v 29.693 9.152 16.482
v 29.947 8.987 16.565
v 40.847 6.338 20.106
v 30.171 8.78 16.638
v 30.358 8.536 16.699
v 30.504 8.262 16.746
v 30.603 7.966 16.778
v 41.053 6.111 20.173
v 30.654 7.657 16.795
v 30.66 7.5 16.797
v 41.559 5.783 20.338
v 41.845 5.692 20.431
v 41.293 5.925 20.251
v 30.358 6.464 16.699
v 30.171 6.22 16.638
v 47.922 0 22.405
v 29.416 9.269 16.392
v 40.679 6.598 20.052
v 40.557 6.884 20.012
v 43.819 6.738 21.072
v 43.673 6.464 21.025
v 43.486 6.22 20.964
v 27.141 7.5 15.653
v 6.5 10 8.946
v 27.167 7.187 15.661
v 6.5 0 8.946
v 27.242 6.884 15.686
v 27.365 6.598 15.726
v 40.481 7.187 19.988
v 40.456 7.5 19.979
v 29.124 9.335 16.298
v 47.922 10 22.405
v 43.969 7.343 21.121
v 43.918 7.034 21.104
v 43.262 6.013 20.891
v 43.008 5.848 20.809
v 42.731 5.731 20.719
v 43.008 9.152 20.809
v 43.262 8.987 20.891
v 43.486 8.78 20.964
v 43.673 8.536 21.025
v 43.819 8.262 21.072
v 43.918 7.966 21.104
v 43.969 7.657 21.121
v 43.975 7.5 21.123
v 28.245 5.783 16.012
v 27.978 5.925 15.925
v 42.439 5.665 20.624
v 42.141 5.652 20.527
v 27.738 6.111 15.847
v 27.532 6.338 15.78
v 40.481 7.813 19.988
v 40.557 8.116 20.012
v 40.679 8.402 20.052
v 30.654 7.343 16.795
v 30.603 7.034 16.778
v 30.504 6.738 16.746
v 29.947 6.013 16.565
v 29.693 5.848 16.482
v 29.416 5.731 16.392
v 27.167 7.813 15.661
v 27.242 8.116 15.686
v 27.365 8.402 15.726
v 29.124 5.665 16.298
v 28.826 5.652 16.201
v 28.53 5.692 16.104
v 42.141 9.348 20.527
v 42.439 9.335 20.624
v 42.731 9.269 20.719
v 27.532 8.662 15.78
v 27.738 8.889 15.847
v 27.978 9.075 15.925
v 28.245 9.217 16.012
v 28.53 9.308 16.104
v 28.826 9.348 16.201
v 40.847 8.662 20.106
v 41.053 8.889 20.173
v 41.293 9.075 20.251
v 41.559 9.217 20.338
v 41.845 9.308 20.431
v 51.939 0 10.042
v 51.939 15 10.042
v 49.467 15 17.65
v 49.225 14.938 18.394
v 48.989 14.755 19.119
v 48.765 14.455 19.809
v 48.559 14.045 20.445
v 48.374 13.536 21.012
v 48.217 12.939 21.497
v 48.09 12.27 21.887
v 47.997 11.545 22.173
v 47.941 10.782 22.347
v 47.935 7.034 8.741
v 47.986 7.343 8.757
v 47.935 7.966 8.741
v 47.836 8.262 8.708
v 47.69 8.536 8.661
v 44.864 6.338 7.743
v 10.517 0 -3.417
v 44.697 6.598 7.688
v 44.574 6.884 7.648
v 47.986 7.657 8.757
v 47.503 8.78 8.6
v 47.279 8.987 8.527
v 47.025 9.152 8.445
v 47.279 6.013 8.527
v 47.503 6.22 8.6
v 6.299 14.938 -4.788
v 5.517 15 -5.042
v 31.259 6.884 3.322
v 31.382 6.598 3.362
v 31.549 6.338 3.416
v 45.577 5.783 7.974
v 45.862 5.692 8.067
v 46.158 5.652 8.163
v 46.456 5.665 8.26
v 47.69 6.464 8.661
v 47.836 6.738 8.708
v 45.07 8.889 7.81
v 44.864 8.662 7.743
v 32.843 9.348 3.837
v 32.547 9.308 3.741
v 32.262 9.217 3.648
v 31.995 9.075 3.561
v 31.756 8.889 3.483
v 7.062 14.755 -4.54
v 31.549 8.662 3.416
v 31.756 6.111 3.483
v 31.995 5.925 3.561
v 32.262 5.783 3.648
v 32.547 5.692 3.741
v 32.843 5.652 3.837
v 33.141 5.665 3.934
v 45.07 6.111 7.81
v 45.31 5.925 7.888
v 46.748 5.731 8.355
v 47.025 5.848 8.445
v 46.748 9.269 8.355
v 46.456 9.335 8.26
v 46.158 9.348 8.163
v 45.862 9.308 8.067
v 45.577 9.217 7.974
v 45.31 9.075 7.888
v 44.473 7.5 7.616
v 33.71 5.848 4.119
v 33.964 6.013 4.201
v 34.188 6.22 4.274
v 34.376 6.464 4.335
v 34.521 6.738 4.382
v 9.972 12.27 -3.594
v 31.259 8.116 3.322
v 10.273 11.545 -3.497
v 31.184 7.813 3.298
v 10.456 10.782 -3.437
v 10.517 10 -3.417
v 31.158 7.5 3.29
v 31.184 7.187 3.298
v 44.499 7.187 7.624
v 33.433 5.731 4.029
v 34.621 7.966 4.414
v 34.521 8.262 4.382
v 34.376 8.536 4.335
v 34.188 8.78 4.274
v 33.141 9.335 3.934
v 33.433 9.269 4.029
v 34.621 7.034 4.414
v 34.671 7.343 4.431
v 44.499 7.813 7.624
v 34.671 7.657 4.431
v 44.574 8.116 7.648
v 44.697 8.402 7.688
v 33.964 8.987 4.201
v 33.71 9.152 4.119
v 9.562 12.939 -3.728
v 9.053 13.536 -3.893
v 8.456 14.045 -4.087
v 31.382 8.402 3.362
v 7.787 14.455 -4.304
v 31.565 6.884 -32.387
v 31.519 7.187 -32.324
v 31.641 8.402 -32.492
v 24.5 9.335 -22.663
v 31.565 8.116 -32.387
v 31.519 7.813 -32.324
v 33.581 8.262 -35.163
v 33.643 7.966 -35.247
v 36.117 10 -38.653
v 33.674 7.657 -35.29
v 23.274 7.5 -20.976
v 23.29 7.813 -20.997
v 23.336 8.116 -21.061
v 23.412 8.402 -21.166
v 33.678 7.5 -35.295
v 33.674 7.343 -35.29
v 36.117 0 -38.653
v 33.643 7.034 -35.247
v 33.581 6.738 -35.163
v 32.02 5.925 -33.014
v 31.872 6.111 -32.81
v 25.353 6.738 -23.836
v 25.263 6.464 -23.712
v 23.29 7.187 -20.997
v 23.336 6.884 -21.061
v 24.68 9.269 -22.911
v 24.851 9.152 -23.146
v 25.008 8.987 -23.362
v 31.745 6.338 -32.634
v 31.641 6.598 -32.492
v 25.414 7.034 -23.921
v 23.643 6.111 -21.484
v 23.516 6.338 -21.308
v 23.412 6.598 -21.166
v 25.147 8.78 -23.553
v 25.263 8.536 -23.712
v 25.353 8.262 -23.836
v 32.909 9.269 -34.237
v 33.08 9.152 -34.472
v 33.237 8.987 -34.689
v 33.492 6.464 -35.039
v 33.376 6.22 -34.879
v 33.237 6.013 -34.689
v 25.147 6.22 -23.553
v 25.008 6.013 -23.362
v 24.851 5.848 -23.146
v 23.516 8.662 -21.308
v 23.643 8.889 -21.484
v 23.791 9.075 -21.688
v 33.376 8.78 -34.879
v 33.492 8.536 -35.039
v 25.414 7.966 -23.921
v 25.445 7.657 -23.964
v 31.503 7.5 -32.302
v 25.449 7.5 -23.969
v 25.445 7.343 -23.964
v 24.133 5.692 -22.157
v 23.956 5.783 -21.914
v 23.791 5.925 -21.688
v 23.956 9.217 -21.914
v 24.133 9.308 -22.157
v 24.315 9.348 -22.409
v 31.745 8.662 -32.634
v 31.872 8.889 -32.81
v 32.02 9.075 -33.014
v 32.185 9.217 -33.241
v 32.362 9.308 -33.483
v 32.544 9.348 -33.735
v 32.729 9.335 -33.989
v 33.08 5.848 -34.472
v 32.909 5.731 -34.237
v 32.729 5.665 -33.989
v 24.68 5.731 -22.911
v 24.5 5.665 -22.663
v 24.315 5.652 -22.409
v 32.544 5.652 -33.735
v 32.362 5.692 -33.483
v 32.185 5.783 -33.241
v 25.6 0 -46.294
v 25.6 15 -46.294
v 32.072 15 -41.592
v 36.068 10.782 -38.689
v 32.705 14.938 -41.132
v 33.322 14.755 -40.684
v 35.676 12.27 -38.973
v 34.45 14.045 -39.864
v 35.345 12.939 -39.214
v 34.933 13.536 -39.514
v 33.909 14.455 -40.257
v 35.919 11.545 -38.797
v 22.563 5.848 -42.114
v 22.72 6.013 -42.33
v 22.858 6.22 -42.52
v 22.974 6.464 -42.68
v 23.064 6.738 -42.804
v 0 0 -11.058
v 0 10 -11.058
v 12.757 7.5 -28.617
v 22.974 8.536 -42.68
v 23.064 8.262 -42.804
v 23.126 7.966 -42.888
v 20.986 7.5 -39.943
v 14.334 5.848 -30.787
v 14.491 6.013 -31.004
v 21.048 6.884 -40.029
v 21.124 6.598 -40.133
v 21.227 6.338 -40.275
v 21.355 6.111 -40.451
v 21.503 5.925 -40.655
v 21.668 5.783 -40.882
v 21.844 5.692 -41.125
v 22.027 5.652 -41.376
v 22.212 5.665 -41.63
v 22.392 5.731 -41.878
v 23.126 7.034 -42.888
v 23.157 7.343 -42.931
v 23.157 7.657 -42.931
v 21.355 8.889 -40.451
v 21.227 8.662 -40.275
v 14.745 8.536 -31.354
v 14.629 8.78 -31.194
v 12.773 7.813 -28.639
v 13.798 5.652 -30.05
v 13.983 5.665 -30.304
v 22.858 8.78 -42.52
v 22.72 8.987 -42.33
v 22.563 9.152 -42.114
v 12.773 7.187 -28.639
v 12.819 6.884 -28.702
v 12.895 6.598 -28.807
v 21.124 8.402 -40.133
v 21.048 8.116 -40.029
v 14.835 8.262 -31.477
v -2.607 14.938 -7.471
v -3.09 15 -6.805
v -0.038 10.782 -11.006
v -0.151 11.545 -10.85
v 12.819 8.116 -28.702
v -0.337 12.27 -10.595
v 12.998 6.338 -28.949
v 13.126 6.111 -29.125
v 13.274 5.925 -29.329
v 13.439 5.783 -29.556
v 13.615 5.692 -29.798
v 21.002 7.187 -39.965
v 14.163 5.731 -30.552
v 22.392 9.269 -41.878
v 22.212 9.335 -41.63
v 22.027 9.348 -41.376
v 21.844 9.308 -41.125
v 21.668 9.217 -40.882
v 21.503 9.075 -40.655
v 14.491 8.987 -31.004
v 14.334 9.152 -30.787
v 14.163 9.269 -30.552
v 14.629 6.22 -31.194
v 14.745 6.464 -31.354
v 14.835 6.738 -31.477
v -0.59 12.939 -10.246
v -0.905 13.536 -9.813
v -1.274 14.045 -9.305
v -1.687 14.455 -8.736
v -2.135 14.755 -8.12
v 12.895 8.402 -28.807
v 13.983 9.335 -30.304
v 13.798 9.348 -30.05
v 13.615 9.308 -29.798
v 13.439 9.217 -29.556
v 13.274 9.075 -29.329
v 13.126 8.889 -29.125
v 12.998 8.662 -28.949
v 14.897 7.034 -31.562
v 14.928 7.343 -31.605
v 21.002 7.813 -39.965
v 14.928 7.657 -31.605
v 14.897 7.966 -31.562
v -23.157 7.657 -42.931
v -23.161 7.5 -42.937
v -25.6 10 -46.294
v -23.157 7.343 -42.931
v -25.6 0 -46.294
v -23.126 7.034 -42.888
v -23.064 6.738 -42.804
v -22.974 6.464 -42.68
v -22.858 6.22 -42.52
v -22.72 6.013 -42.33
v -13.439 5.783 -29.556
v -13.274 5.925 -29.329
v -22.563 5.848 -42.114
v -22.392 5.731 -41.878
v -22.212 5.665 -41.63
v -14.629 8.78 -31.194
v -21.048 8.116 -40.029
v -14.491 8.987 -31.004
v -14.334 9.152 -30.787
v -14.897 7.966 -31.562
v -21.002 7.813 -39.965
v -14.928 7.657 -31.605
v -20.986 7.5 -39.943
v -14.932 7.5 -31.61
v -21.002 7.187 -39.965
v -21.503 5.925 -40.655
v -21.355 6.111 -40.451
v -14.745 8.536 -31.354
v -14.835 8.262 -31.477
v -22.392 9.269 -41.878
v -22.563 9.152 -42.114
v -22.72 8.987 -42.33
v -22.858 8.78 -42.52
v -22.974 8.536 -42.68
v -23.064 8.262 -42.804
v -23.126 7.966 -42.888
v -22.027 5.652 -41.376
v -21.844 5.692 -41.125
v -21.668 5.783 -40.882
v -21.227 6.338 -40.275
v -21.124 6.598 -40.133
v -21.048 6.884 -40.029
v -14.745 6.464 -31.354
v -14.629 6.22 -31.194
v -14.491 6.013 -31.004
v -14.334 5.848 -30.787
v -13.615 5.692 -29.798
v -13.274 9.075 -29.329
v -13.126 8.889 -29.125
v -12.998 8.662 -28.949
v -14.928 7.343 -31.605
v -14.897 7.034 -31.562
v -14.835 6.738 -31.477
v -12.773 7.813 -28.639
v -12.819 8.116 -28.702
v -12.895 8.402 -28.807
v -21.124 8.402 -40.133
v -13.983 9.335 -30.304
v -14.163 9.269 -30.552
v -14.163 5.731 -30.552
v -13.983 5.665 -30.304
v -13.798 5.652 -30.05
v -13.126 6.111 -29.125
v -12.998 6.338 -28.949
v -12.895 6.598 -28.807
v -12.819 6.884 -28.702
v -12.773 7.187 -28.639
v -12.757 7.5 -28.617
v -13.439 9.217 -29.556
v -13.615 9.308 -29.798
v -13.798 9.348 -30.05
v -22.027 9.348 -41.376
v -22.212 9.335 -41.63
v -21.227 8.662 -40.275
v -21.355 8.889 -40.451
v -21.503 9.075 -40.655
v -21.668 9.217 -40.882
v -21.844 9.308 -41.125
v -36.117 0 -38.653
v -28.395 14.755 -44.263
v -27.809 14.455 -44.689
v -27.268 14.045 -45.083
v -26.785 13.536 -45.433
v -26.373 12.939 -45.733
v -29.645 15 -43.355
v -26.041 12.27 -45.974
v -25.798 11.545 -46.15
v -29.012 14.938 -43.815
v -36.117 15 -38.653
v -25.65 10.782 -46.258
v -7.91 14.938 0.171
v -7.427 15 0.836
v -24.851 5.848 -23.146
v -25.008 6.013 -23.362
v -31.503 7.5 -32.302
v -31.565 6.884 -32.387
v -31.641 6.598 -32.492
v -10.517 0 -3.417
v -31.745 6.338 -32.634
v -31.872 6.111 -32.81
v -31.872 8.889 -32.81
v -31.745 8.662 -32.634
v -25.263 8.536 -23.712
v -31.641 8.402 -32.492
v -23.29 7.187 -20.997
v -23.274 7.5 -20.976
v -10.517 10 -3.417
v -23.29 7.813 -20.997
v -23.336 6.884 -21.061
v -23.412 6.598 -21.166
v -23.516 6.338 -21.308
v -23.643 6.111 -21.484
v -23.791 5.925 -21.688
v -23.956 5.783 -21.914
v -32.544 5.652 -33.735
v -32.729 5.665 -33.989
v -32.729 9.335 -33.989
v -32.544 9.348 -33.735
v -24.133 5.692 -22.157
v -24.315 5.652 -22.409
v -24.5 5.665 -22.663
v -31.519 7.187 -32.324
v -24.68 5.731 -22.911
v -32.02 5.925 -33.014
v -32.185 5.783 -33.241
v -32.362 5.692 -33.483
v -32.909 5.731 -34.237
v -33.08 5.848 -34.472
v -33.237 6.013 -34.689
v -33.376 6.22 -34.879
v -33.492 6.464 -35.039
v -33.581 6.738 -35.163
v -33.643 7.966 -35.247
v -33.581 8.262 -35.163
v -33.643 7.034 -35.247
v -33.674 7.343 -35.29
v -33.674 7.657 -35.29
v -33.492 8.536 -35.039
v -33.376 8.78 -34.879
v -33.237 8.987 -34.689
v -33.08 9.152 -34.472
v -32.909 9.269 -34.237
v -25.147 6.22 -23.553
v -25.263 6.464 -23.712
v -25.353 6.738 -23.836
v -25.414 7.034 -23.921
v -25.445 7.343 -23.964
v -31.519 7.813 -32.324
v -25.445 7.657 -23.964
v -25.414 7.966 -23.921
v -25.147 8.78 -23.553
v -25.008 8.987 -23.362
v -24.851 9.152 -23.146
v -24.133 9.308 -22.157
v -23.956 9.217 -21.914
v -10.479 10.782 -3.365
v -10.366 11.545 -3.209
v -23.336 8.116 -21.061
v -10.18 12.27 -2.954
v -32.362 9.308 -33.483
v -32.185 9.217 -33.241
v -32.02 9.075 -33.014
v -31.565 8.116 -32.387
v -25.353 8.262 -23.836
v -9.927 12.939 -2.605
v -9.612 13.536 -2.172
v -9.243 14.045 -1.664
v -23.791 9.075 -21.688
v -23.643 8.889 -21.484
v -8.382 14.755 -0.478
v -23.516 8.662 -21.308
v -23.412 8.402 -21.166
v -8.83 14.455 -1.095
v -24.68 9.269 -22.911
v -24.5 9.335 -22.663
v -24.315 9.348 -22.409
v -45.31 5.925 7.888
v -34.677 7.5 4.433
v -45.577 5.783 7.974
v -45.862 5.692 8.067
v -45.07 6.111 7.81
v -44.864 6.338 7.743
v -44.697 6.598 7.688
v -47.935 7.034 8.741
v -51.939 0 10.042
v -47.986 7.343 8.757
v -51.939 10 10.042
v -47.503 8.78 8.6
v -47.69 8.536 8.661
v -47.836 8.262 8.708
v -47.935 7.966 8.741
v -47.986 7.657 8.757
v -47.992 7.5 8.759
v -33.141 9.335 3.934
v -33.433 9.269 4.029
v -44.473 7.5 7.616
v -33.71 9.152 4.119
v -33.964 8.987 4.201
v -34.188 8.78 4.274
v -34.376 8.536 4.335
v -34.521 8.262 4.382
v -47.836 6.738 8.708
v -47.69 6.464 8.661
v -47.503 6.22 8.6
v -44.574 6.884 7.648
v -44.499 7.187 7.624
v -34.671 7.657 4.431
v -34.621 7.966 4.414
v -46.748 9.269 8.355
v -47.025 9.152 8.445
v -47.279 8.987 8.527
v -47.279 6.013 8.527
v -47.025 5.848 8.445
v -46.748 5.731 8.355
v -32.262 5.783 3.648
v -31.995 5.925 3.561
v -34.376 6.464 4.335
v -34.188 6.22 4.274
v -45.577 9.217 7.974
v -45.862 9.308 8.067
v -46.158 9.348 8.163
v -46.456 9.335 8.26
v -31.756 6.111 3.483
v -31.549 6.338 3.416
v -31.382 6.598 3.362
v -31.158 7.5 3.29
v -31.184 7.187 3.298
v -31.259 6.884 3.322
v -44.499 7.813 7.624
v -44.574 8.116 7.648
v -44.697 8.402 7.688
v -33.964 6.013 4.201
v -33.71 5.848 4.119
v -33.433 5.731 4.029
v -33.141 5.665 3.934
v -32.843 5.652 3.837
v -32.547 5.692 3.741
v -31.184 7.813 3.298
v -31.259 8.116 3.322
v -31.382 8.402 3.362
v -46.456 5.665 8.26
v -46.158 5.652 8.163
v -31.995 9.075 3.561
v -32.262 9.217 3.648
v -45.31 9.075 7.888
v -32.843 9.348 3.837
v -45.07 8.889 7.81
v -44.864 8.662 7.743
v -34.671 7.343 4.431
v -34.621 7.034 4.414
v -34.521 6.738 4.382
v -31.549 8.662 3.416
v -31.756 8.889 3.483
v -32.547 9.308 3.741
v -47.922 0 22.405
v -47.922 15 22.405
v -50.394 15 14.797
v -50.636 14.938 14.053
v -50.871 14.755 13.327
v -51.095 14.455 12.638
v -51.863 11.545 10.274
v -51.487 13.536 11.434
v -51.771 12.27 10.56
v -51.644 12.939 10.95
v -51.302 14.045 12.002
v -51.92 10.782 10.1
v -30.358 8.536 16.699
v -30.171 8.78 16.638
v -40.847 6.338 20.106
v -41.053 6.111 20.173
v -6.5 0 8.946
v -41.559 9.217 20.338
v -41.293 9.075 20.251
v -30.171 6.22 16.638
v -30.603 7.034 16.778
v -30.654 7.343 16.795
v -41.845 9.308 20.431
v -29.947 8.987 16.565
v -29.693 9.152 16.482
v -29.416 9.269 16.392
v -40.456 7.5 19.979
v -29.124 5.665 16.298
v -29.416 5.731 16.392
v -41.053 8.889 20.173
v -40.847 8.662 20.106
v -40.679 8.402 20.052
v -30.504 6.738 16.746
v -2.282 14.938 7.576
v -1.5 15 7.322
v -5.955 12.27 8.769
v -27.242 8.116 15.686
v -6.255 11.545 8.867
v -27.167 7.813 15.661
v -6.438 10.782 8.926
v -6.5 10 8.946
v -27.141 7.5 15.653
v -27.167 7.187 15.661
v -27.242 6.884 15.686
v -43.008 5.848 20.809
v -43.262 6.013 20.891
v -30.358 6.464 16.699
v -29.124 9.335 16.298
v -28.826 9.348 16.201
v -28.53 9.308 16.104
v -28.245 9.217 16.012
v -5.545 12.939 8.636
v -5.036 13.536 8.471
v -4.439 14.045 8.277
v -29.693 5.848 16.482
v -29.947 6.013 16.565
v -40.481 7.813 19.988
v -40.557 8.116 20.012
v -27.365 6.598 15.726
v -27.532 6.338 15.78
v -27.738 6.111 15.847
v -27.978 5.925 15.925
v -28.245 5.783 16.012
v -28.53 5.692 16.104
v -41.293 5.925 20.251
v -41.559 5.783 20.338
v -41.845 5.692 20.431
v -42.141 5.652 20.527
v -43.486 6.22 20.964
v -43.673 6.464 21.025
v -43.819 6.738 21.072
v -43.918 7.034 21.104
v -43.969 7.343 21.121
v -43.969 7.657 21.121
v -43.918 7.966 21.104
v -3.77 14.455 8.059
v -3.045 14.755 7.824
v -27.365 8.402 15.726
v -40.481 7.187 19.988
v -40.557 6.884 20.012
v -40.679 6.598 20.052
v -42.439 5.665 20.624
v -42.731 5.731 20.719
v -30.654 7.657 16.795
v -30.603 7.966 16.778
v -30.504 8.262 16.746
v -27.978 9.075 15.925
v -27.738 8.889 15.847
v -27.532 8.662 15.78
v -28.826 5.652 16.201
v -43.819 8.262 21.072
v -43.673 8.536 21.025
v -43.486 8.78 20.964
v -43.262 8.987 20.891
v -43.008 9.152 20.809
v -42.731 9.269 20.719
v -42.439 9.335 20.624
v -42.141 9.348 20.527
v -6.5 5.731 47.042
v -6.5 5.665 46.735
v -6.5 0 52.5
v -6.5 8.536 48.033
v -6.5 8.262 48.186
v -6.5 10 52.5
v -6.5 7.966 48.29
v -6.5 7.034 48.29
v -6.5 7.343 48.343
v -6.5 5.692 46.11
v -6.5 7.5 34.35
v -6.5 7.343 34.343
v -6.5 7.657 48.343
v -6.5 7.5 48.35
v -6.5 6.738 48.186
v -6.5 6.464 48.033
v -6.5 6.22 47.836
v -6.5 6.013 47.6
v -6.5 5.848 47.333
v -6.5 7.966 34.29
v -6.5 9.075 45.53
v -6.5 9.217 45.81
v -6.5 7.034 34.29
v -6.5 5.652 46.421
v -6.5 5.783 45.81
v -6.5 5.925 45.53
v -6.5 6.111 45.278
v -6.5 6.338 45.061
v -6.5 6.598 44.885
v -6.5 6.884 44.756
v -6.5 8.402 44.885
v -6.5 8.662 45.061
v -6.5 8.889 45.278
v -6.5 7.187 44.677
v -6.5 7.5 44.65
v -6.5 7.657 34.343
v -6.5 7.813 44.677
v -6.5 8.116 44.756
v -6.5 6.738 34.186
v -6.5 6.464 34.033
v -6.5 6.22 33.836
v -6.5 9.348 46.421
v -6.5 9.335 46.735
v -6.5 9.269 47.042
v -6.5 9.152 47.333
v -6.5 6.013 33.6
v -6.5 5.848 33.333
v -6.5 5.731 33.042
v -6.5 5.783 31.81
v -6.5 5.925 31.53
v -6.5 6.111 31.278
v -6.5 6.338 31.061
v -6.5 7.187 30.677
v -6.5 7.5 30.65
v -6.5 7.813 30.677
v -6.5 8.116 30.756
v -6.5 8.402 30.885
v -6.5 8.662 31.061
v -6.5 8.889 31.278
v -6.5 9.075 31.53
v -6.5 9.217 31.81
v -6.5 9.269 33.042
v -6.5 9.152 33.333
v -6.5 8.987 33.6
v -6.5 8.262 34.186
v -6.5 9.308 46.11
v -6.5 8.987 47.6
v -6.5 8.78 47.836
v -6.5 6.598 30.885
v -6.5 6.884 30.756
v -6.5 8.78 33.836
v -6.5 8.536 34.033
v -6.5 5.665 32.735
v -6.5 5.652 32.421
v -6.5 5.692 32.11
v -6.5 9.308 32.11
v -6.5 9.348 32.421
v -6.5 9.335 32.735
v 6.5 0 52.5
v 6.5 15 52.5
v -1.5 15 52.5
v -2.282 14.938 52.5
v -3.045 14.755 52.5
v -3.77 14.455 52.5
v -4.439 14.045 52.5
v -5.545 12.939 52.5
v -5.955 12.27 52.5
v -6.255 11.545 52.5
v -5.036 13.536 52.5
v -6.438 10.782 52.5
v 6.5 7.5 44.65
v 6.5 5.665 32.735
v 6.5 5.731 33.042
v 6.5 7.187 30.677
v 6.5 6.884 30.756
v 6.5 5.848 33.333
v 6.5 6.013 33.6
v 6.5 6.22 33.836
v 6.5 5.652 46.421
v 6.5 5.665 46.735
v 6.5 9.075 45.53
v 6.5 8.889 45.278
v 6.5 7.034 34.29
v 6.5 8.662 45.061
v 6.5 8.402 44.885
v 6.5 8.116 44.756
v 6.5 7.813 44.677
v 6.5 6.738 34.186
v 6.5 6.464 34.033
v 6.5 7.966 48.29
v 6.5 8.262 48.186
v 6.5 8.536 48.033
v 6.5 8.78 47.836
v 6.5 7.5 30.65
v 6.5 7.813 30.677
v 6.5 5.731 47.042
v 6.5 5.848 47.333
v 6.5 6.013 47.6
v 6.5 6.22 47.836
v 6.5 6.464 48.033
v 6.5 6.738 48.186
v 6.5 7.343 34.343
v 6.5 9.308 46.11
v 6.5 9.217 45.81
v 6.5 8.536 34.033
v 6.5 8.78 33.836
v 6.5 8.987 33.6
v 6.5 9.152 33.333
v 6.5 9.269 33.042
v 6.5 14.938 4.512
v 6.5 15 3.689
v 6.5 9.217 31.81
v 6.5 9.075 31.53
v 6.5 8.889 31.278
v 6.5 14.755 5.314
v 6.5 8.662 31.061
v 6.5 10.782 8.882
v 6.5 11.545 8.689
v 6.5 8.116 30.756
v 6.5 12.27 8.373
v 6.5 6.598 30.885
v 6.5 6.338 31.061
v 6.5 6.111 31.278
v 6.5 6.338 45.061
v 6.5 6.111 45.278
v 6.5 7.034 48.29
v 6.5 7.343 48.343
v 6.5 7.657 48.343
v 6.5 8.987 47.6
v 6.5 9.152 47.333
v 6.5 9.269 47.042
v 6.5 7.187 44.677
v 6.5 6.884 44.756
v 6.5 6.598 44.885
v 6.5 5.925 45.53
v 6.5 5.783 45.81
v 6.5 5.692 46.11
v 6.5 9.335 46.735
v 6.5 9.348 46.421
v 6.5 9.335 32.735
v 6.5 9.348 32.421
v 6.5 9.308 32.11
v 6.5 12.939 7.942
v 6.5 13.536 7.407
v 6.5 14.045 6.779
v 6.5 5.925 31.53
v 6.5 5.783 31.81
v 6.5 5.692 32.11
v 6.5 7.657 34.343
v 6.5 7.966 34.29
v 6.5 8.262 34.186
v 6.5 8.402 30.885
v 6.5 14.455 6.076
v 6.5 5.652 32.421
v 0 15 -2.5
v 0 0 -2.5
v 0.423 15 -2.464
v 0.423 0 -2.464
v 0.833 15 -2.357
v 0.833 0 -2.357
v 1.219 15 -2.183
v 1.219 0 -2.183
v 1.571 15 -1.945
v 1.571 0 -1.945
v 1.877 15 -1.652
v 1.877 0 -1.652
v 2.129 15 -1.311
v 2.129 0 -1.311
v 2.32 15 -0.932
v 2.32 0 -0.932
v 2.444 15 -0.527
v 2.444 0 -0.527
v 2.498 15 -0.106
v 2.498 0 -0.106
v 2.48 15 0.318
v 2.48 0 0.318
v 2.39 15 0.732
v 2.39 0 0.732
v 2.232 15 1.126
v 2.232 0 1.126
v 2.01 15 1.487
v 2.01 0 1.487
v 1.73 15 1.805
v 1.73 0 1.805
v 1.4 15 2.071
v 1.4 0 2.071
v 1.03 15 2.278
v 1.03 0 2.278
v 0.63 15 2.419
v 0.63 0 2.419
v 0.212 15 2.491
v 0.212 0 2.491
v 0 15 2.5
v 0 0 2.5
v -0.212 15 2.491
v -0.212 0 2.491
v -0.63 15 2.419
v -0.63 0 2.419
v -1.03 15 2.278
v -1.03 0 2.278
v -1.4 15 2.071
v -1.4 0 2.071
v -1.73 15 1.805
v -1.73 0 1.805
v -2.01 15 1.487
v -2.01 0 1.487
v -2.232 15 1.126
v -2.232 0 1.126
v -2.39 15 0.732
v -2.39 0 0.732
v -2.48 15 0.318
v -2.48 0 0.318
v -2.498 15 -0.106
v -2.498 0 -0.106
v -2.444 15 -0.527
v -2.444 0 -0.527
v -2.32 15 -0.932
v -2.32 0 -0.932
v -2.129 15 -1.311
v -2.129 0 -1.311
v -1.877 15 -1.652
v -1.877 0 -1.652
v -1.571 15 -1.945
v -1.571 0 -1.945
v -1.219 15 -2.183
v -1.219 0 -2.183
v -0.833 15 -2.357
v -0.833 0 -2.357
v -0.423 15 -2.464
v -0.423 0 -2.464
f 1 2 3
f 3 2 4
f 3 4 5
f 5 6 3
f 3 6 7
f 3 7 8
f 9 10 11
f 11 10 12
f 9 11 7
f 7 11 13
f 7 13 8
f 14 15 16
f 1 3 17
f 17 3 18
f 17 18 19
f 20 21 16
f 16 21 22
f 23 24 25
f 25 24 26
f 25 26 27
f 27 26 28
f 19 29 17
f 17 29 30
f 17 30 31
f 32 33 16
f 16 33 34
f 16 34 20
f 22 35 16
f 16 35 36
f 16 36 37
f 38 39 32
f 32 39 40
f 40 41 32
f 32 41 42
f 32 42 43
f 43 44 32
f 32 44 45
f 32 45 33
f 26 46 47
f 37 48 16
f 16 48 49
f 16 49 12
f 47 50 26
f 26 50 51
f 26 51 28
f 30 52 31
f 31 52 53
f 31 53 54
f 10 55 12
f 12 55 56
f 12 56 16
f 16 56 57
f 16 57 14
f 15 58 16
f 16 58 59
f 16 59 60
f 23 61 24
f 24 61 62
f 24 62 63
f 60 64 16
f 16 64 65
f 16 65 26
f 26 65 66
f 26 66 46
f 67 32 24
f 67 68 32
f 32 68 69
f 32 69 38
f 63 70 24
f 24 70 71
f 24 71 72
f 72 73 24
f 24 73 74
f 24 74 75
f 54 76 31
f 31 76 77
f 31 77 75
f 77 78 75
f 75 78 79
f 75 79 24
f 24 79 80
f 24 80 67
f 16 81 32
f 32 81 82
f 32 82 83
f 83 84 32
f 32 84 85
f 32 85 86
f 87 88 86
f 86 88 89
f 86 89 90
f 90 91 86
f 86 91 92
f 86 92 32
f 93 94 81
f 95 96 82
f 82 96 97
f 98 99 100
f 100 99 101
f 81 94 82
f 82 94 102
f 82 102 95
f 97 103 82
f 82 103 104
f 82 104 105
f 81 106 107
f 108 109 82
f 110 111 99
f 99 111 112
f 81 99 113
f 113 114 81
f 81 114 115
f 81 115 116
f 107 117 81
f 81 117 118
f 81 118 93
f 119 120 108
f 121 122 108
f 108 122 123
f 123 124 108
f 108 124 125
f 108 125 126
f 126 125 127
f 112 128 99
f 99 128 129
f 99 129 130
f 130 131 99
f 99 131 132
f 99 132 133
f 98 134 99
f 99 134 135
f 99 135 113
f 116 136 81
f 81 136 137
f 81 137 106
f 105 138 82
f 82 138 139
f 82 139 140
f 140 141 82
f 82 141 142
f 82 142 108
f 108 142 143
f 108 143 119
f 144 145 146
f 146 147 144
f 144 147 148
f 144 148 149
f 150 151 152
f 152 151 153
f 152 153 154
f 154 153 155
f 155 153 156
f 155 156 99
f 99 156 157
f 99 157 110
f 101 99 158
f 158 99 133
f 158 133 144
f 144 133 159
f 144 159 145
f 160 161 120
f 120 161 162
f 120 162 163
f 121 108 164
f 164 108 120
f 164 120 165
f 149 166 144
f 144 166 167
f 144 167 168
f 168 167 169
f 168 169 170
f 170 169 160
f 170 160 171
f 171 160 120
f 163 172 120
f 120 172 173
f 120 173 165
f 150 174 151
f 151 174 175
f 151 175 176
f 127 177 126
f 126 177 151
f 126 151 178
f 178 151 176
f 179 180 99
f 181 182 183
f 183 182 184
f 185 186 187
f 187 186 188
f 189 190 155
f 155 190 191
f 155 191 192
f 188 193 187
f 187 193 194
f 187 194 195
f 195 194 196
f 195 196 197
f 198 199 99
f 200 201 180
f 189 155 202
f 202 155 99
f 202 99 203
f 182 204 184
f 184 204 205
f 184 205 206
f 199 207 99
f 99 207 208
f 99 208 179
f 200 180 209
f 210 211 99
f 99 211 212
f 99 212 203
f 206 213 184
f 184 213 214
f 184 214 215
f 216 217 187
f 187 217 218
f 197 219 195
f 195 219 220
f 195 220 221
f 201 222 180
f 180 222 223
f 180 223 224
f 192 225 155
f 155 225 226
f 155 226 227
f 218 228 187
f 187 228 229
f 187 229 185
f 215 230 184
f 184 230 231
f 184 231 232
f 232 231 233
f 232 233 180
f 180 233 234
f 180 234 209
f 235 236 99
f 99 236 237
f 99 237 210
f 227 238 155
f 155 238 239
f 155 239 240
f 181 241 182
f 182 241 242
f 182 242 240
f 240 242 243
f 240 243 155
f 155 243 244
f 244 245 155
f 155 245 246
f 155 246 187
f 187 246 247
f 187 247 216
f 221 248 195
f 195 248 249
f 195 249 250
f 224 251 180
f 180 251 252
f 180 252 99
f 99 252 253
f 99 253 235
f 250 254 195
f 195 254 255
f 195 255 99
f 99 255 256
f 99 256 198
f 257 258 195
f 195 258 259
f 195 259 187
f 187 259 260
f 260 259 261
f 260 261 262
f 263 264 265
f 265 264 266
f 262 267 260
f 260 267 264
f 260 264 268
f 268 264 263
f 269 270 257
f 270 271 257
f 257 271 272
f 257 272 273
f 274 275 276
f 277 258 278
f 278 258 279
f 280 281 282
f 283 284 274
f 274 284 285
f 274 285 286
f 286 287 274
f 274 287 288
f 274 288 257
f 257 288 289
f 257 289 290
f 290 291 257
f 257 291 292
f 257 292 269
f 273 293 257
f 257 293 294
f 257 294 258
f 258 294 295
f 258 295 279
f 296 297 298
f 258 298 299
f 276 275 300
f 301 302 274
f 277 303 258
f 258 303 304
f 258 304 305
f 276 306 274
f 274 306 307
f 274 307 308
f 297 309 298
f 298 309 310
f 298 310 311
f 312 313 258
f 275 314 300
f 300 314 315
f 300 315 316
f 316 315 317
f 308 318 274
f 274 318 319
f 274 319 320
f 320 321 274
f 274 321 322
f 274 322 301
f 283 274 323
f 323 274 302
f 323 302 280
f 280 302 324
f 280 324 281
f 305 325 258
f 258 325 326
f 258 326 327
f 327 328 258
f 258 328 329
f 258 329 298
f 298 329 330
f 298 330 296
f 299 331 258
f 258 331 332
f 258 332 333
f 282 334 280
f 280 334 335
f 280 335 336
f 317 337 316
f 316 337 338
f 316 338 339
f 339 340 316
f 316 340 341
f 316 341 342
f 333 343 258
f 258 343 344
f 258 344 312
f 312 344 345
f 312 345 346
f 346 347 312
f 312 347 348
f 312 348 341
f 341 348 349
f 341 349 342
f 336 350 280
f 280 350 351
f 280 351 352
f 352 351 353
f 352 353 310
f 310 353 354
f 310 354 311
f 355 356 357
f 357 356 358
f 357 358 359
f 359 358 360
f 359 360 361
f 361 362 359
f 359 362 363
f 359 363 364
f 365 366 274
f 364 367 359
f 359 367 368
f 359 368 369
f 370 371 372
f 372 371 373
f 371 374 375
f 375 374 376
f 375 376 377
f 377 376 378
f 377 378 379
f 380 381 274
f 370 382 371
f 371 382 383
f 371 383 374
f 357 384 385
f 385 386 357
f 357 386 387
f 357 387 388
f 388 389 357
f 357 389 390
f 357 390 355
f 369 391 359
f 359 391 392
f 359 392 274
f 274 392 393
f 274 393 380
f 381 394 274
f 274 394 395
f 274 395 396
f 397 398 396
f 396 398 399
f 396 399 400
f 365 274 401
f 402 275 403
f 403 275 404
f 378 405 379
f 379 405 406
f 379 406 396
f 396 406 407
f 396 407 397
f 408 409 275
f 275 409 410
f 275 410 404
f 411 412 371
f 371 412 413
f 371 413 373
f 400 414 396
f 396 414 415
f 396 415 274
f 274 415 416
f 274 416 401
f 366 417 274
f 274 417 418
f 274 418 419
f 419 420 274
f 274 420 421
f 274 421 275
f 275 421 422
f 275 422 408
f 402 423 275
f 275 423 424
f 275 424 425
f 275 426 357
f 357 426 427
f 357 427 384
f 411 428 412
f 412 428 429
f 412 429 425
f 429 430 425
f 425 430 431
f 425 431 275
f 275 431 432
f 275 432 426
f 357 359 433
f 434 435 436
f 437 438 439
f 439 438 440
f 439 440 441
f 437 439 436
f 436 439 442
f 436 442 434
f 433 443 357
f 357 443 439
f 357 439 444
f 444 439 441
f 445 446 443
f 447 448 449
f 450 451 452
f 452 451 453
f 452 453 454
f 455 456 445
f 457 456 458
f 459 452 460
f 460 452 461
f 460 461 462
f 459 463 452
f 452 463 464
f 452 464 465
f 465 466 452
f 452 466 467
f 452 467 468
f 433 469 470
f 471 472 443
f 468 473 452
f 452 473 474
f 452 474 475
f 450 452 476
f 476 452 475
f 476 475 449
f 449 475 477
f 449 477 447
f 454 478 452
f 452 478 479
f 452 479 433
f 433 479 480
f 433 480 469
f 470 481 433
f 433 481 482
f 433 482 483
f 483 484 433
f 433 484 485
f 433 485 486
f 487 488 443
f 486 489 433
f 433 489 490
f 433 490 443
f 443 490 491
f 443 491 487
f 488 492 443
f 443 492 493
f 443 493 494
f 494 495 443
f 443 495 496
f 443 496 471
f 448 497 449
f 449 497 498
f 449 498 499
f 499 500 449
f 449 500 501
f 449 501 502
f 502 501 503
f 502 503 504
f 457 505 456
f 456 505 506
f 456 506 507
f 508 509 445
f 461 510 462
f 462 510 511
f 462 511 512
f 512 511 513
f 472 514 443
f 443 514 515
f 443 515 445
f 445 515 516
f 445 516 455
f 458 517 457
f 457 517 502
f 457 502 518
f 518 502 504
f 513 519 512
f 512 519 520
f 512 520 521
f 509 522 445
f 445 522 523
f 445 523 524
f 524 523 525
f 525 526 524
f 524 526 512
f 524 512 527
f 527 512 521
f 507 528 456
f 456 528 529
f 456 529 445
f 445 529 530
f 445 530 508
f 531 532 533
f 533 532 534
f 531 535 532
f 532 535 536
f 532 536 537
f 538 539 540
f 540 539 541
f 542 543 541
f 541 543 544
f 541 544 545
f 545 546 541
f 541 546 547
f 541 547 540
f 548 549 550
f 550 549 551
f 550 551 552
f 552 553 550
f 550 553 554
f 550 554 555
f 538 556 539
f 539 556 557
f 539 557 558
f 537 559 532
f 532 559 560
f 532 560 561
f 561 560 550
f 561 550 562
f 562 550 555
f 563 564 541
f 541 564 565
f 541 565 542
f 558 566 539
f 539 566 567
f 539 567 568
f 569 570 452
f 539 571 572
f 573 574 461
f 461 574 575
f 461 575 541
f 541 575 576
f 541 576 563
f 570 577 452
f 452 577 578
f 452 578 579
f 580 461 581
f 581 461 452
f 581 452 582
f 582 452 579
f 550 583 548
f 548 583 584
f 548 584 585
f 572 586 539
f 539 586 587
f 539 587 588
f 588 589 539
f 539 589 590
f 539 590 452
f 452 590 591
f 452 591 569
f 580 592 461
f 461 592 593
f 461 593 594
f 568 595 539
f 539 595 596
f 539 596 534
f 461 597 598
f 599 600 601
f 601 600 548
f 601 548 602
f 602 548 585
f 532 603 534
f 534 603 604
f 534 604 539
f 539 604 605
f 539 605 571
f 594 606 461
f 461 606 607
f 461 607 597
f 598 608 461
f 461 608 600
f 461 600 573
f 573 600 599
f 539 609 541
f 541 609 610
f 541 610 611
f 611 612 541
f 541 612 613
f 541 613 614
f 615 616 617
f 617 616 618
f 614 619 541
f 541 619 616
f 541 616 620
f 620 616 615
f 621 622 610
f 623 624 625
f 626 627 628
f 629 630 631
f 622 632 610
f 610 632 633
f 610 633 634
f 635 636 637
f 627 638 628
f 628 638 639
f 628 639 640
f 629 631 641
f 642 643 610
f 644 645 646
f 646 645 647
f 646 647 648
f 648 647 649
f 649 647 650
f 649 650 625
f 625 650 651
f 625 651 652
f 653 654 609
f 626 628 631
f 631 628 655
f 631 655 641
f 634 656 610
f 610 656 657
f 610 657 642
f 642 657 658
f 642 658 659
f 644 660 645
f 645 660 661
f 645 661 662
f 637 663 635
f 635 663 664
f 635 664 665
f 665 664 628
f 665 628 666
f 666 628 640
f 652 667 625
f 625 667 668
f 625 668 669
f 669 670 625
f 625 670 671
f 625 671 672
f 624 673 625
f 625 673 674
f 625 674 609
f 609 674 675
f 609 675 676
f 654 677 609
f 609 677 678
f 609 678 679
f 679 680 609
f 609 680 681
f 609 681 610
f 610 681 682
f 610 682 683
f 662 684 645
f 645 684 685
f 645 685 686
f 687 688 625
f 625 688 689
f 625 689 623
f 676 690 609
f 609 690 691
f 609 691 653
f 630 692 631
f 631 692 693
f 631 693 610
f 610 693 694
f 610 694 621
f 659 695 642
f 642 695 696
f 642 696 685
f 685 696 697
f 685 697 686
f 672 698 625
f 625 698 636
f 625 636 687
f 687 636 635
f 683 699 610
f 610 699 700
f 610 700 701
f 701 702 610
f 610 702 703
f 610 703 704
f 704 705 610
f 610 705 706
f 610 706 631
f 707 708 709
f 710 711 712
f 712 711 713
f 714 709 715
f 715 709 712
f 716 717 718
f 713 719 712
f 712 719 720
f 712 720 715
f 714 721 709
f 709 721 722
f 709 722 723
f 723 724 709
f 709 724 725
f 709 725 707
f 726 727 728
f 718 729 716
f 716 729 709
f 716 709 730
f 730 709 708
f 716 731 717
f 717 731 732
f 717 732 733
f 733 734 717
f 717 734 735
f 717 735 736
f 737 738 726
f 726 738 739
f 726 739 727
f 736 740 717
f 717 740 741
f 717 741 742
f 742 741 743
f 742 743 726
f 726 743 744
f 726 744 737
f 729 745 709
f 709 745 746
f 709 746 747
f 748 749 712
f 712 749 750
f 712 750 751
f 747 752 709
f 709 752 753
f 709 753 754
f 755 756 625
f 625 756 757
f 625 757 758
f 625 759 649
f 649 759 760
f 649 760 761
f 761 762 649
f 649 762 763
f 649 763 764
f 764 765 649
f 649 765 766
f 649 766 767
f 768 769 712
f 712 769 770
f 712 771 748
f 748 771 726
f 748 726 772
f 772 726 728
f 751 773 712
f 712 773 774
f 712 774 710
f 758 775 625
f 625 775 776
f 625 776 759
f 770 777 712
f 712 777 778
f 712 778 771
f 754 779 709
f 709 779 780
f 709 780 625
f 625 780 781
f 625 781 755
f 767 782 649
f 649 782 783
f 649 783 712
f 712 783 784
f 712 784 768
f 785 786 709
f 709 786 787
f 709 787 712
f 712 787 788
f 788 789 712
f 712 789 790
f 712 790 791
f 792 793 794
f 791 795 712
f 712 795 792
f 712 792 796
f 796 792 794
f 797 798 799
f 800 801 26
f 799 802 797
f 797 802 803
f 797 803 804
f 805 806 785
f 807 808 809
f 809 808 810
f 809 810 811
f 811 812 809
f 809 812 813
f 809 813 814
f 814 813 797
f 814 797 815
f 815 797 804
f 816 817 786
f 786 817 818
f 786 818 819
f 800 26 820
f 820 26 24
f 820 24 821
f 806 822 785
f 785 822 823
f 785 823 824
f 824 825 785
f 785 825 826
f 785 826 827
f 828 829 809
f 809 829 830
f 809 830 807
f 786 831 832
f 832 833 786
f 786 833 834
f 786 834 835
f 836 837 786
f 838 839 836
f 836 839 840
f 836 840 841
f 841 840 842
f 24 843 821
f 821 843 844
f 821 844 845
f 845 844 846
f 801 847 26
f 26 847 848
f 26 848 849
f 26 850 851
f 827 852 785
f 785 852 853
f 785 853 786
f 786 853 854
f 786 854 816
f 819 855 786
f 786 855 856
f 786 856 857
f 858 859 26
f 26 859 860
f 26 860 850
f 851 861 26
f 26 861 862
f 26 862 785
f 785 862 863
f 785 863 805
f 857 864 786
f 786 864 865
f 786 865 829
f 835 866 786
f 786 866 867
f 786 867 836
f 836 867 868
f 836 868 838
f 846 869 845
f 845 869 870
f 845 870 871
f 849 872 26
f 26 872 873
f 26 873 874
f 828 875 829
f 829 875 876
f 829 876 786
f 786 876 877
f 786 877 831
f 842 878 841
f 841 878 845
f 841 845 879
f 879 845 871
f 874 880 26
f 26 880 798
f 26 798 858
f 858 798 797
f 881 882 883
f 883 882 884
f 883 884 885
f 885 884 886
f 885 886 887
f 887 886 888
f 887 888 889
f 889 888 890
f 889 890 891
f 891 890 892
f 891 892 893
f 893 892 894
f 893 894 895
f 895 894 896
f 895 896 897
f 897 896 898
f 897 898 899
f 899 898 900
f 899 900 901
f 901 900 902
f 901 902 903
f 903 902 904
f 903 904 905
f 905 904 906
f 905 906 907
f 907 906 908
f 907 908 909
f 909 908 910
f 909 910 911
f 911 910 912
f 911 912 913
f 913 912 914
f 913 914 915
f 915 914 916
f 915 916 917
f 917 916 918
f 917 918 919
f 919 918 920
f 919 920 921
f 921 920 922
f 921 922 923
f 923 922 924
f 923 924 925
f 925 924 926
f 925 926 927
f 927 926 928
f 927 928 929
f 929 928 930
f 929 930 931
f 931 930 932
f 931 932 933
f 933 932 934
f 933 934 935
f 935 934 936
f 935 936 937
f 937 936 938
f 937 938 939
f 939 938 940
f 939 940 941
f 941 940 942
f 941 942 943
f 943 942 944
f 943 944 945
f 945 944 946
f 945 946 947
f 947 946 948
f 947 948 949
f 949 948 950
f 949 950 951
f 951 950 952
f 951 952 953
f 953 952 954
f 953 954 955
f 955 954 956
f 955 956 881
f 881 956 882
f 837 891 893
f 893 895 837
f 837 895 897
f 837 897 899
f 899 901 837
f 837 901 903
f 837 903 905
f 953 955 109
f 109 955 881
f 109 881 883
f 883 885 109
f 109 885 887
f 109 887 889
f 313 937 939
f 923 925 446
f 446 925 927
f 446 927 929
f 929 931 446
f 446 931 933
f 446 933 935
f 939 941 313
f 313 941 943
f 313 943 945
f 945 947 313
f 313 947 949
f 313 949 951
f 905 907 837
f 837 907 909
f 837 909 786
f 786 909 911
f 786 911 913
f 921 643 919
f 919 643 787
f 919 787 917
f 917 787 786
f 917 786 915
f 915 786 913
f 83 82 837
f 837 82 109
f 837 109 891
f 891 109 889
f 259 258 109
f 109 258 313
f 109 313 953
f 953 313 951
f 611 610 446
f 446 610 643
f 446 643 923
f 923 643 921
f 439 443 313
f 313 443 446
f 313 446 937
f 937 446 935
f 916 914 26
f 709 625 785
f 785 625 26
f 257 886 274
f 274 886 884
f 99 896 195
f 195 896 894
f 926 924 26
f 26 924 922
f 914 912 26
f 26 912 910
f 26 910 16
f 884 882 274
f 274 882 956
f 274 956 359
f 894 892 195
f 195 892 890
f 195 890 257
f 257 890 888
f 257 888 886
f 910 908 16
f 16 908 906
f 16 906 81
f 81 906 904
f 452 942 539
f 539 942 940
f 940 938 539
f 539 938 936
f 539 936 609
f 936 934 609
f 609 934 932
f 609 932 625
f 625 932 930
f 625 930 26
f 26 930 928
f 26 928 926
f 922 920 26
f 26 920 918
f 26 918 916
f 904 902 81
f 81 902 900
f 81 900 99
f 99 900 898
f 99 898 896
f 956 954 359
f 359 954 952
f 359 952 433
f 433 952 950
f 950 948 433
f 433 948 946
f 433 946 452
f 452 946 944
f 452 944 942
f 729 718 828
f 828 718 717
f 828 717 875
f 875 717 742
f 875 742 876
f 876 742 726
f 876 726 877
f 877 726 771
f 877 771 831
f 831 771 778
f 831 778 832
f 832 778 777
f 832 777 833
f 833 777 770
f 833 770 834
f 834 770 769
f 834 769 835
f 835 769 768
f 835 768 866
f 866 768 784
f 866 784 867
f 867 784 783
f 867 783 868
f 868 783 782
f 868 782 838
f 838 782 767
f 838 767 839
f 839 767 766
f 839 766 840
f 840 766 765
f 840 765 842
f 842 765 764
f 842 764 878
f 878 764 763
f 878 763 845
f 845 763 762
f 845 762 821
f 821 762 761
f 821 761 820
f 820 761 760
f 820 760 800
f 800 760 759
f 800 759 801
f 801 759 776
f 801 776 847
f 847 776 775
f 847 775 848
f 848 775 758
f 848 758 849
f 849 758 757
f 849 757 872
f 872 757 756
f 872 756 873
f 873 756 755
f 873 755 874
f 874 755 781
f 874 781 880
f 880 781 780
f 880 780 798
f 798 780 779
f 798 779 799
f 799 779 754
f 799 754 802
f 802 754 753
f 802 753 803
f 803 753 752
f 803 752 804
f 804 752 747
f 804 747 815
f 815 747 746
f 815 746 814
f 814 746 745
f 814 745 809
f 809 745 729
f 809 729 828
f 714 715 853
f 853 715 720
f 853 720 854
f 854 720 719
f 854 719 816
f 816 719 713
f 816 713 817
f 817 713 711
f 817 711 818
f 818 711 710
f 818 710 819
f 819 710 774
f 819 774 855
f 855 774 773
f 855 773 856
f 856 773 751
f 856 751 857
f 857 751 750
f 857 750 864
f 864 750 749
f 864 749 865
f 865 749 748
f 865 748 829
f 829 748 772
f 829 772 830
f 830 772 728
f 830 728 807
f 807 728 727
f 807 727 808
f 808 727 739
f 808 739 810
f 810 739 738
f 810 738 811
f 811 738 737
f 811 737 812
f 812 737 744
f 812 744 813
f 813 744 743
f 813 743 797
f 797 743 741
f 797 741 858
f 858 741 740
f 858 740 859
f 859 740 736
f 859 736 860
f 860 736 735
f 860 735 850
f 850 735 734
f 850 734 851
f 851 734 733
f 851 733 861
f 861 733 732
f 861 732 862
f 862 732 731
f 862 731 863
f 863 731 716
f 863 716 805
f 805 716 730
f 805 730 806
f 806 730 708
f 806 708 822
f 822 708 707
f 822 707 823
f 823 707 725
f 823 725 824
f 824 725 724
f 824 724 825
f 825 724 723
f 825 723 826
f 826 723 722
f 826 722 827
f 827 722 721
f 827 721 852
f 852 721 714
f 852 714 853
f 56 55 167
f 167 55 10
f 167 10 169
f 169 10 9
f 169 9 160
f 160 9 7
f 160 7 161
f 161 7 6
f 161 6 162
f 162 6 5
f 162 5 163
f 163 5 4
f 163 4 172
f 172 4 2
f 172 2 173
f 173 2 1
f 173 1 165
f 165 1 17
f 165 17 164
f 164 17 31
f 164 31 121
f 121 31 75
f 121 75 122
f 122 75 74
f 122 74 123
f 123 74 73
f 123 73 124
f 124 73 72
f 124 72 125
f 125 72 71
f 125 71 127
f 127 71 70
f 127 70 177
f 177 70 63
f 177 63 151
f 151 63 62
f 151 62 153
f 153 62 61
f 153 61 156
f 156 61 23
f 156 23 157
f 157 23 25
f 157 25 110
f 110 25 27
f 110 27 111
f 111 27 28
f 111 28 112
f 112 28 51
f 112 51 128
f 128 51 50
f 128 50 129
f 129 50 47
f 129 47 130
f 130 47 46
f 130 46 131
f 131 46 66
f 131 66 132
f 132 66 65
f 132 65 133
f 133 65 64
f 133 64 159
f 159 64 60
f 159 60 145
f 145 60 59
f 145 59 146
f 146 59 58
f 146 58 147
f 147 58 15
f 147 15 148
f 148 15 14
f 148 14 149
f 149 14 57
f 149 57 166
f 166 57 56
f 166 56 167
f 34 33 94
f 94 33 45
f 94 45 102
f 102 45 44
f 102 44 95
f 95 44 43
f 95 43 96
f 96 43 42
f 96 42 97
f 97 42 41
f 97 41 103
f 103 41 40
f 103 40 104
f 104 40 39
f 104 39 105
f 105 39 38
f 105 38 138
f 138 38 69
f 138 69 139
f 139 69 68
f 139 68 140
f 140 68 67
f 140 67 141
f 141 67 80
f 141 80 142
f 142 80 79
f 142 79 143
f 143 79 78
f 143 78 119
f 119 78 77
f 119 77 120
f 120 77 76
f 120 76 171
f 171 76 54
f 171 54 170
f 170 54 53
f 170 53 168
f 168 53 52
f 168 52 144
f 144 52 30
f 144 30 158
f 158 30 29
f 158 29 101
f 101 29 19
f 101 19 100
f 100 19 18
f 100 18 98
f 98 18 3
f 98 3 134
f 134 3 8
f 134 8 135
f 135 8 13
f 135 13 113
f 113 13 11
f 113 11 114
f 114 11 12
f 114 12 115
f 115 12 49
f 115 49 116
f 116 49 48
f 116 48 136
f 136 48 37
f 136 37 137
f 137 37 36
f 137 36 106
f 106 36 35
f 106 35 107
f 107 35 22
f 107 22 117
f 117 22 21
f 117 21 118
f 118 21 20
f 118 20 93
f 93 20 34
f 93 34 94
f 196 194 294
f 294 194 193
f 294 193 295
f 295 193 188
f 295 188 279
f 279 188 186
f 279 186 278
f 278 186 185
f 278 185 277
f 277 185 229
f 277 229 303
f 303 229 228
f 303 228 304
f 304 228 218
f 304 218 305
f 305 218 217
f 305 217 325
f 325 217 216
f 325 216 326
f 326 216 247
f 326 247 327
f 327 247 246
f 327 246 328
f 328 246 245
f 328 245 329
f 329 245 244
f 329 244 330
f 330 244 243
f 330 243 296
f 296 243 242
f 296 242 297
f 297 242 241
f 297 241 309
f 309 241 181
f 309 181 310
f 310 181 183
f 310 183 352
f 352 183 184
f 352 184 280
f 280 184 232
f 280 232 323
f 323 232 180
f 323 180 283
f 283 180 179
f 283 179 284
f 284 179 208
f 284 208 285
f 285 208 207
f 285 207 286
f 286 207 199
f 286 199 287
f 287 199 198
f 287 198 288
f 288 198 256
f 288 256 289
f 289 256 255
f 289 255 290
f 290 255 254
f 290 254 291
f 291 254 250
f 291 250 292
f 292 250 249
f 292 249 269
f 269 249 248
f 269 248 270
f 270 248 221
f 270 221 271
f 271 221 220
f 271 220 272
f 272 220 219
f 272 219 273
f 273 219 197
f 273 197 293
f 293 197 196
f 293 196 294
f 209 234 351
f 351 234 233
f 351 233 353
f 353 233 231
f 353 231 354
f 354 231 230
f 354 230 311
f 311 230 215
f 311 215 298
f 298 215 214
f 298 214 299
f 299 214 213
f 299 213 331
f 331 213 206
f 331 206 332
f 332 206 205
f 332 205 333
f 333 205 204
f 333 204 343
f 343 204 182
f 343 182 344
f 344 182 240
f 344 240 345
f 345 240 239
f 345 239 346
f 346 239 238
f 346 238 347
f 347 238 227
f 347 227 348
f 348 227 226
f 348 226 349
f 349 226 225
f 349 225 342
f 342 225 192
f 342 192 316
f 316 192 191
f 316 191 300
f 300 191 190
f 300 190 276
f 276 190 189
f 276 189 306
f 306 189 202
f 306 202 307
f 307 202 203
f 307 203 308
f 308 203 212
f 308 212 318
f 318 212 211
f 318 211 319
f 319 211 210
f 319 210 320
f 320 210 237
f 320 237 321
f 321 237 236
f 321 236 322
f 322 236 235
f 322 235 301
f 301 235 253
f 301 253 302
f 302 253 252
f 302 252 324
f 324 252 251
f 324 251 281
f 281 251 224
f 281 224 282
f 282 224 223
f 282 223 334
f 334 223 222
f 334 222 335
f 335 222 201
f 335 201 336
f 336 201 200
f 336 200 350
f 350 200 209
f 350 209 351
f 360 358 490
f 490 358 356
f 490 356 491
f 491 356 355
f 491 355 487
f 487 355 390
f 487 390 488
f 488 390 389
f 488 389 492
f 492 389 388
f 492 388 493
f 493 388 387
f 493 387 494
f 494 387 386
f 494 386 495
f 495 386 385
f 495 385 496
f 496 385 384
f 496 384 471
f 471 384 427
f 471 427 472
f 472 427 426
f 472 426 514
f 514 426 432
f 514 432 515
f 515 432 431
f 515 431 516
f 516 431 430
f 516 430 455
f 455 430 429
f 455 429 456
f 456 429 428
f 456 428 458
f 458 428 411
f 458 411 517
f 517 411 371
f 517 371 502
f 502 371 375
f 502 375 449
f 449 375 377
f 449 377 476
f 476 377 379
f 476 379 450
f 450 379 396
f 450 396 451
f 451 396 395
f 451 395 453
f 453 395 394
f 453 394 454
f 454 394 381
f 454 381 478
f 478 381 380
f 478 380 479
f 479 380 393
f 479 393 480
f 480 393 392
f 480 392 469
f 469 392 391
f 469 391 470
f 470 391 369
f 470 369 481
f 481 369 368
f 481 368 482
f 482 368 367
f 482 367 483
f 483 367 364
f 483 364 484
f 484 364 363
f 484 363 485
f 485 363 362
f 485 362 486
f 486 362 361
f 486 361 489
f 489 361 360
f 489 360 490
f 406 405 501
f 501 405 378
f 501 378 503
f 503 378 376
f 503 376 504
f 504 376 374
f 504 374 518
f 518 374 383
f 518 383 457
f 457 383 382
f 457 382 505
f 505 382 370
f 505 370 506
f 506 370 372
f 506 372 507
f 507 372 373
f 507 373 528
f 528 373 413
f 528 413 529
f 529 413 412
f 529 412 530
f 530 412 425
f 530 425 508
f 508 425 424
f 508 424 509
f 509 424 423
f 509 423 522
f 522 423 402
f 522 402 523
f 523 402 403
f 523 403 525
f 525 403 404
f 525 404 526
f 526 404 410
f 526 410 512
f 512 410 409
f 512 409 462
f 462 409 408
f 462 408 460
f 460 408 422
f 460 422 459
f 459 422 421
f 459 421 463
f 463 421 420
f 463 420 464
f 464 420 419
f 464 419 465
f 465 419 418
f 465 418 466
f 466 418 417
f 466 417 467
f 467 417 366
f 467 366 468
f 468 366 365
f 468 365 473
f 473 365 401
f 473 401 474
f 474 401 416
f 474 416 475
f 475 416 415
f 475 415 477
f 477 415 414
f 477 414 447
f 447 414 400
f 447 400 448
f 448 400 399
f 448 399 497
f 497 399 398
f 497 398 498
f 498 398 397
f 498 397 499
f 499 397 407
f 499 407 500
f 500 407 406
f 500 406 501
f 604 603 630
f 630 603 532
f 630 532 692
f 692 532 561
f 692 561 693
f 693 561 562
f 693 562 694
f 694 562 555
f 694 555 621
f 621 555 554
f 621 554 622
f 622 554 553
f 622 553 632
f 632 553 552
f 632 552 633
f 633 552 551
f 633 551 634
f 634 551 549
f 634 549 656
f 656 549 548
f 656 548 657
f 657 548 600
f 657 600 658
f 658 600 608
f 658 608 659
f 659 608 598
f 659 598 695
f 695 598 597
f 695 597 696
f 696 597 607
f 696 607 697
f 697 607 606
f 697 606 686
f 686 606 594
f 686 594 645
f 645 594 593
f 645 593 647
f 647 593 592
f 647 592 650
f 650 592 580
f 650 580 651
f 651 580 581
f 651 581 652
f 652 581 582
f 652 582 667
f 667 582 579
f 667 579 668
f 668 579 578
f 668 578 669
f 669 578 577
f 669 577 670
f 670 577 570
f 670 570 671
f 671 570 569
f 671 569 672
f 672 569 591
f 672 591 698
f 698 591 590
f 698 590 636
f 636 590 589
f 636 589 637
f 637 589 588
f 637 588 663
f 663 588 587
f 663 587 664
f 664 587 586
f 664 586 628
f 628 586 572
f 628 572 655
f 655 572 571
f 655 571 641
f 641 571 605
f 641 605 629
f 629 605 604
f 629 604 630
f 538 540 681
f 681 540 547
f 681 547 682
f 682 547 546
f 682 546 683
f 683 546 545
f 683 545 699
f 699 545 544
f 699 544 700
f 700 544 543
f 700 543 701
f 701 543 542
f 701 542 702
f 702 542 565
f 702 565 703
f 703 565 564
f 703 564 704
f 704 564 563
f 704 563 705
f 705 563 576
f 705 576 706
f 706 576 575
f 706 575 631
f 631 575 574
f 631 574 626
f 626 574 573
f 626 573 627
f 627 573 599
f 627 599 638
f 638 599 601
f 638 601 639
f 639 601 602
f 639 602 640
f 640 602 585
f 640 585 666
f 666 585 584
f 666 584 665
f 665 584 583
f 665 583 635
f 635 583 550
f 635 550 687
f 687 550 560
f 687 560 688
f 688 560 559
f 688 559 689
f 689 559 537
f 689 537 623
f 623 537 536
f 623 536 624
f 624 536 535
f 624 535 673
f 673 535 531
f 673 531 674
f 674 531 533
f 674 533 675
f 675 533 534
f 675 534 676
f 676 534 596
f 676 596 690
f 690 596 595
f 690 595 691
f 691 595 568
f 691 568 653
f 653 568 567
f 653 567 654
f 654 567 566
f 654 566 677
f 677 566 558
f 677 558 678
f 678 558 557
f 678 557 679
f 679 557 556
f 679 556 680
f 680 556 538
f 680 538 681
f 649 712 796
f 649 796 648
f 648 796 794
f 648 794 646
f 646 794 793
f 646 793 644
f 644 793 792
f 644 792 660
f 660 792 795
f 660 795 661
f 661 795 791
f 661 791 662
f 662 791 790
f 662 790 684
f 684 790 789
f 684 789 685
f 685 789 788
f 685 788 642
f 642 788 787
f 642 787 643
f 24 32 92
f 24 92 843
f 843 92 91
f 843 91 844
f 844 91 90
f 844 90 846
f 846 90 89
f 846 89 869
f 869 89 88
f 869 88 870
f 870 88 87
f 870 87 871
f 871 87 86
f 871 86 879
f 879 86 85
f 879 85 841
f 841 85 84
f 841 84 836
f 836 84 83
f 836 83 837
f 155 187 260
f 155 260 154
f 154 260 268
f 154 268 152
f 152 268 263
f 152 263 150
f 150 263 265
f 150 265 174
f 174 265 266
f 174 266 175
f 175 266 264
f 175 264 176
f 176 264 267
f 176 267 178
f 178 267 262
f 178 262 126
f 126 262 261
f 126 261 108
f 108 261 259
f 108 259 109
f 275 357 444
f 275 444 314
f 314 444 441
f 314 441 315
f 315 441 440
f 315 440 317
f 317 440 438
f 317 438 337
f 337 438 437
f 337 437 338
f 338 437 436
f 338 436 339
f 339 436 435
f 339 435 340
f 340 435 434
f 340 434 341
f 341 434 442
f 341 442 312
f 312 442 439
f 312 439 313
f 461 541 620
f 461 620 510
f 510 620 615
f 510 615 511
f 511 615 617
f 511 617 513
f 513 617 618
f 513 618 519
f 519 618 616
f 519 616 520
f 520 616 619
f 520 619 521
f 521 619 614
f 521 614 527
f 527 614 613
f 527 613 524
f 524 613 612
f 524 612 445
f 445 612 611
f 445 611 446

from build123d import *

# Parameters (mm, degrees)
PROTO_PENTAGRAM_R   = 7.5
PROTO_PENTAGRAM_R_2 = 2.5
BOSS_EXTRUDE1_DEPTH = 15
PICK_1_R            = 1.85
CUT_EXTRUDE1_DEPTH  = 15
PICK_2_R            = 1.85
CUT_EXTRUDE2_DEPTH  = 15
PICK_3_R            = 1.85
CUT_EXTRUDE3_DEPTH  = 15
PICK_4_R            = 1.85
CUT_EXTRUDE4_DEPTH  = 15
PICK_5_R            = 1.85
CUT_EXTRUDE5_DEPTH  = 15
FILLET1_R           = 5


with BuildPart() as part:
    # proto-pentagram → Boss-Extrude1 (new body)
    # profile 1 of 2: a face of its own
    with BuildSketch(Plane(origin=(0, 0, 0), x_dir=(1, 0, 0), z_dir=(0, 1, 0))):
        Polygon((47.921856642, -22.405259561), (6.5, -8.946482483), (6.5, -52.5), (-6.5, -52.5), (-6.5, -8.946482483), (-47.921856642, -22.405259561), (-51.939077569, -10.041524849), (-10.517220927, 3.417252229), (-36.117336209, 38.652788065), (-25.600115282, 46.293996345), (0, 11.058460509), (25.600115282, 46.293996345), (36.117336209, 38.652788065), (10.517220927, 3.417252229), (51.939077569, -10.041524849), align=None)
        Circle(PROTO_PENTAGRAM_R, mode=Mode.SUBTRACT)
    # profile 2 of 2: a face of its own
    with BuildSketch(Plane(origin=(0, 0, 0), x_dir=(1, 0, 0), z_dir=(0, 1, 0))):
        Circle(PROTO_PENTAGRAM_R)
        with Locations(Location((0, 0, 0), (0, 0, 270))):
            Circle(PROTO_PENTAGRAM_R_2, mode=Mode.SUBTRACT)
    extrude(amount=BOSS_EXTRUDE1_DEPTH)

    # pick-1 → Cut-Extrude1 (cut)
    with BuildSketch(Plane(origin=(6.5, 0, 0), x_dir=(0, 0, -1), z_dir=(1, 0, 0))):
        with Locations((-46.5, 7.5)):
            Circle(PICK_1_R)
        with Locations((-32.5, 7.5)):
            Circle(PICK_1_R)
    extrude(amount=-CUT_EXTRUDE1_DEPTH, mode=Mode.SUBTRACT)

    # pick-2 → Cut-Extrude2 (cut)
    with BuildSketch(Plane(origin=(2.008610463, 0, -6.181867356), x_dir=(-0.9510565162951501, 0, -0.3090169943749584), z_dir=(0.3090169943749584, 0, -0.9510565162951501))):
        with Locations((-46.5, 7.5)):
            Circle(PICK_2_R)
        with Locations((-32.5, 7.5)):
            Circle(PICK_2_R)
    extrude(amount=-CUT_EXTRUDE2_DEPTH, mode=Mode.SUBTRACT)

    # pick-3 → Cut-Extrude3 (cut)
    with BuildSketch(Plane(origin=(-5.258610463, 0, -3.82060414), x_dir=(-0.5877852522924804, 0, 0.8090169943749422), z_dir=(-0.8090169943749423, 0, -0.5877852522924804))):
        with Locations((-46.5, 7.5)):
            Circle(PICK_3_R)
        with Locations((-32.5, 7.5)):
            Circle(PICK_3_R)
    extrude(amount=-CUT_EXTRUDE3_DEPTH, mode=Mode.SUBTRACT)

    # pick-4 → Cut-Extrude4 (cut)
    with BuildSketch(Plane(origin=(-5.258610463, 0, 3.82060414), x_dir=(0.5877852522924687, 0, 0.8090169943749507), z_dir=(-0.8090169943749508, 0, 0.5877852522924687))):
        with Locations((-46.5, 7.5)):
            Circle(PICK_4_R)
        with Locations((-32.5, 7.5)):
            Circle(PICK_4_R)
    extrude(amount=-CUT_EXTRUDE4_DEPTH, mode=Mode.SUBTRACT)

    # pick-5 → Cut-Extrude5 (cut)
    with BuildSketch(Plane(origin=(2.008610463, 0, 6.181867356), x_dir=(0.9510565162951544, 0, -0.30901699437494484), z_dir=(0.30901699437494484, 0, 0.9510565162951544))):
        with Locations((-46.5, 7.5)):
            Circle(PICK_5_R)
        with Locations((-32.5, 7.5)):
            Circle(PICK_5_R)
    extrude(amount=-CUT_EXTRUDE5_DEPTH, mode=Mode.SUBTRACT)

    # Fillet1
    fillet1_edges = [part.edges().sort_by_distance(p)[0] for p in [
        (23.317278568, 15, -21.035020147),
        (-12.800057641, 15, -28.676228427),
        (27.210928321, 15, 15.675871022),
        (-31.228149248, 15, 3.31213631),
        (-6.5, 15, 30.723241242),
    ]]
    fillet(fillet1_edges, radius=FILLET1_R)


solid = part.part
